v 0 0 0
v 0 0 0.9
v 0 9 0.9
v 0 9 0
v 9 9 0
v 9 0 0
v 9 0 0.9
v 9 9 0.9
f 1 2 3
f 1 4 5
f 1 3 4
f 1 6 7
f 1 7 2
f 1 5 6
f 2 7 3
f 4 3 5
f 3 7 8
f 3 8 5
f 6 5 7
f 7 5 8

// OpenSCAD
/* Warning, this is a very basic generator with a lot of approximation 
input data : [VQFN, 9JX, 9x9x0.9mm, 64, , B, C04-00434B]
generated by com.zoubworld.electronics.cad.model3d.Basic
Date : Sun Feb 15 10:50:48 CET 2026
*/

//body
color("black")
translate([0,0,0])
cube([9.0,9.0,0.9], center=false);
